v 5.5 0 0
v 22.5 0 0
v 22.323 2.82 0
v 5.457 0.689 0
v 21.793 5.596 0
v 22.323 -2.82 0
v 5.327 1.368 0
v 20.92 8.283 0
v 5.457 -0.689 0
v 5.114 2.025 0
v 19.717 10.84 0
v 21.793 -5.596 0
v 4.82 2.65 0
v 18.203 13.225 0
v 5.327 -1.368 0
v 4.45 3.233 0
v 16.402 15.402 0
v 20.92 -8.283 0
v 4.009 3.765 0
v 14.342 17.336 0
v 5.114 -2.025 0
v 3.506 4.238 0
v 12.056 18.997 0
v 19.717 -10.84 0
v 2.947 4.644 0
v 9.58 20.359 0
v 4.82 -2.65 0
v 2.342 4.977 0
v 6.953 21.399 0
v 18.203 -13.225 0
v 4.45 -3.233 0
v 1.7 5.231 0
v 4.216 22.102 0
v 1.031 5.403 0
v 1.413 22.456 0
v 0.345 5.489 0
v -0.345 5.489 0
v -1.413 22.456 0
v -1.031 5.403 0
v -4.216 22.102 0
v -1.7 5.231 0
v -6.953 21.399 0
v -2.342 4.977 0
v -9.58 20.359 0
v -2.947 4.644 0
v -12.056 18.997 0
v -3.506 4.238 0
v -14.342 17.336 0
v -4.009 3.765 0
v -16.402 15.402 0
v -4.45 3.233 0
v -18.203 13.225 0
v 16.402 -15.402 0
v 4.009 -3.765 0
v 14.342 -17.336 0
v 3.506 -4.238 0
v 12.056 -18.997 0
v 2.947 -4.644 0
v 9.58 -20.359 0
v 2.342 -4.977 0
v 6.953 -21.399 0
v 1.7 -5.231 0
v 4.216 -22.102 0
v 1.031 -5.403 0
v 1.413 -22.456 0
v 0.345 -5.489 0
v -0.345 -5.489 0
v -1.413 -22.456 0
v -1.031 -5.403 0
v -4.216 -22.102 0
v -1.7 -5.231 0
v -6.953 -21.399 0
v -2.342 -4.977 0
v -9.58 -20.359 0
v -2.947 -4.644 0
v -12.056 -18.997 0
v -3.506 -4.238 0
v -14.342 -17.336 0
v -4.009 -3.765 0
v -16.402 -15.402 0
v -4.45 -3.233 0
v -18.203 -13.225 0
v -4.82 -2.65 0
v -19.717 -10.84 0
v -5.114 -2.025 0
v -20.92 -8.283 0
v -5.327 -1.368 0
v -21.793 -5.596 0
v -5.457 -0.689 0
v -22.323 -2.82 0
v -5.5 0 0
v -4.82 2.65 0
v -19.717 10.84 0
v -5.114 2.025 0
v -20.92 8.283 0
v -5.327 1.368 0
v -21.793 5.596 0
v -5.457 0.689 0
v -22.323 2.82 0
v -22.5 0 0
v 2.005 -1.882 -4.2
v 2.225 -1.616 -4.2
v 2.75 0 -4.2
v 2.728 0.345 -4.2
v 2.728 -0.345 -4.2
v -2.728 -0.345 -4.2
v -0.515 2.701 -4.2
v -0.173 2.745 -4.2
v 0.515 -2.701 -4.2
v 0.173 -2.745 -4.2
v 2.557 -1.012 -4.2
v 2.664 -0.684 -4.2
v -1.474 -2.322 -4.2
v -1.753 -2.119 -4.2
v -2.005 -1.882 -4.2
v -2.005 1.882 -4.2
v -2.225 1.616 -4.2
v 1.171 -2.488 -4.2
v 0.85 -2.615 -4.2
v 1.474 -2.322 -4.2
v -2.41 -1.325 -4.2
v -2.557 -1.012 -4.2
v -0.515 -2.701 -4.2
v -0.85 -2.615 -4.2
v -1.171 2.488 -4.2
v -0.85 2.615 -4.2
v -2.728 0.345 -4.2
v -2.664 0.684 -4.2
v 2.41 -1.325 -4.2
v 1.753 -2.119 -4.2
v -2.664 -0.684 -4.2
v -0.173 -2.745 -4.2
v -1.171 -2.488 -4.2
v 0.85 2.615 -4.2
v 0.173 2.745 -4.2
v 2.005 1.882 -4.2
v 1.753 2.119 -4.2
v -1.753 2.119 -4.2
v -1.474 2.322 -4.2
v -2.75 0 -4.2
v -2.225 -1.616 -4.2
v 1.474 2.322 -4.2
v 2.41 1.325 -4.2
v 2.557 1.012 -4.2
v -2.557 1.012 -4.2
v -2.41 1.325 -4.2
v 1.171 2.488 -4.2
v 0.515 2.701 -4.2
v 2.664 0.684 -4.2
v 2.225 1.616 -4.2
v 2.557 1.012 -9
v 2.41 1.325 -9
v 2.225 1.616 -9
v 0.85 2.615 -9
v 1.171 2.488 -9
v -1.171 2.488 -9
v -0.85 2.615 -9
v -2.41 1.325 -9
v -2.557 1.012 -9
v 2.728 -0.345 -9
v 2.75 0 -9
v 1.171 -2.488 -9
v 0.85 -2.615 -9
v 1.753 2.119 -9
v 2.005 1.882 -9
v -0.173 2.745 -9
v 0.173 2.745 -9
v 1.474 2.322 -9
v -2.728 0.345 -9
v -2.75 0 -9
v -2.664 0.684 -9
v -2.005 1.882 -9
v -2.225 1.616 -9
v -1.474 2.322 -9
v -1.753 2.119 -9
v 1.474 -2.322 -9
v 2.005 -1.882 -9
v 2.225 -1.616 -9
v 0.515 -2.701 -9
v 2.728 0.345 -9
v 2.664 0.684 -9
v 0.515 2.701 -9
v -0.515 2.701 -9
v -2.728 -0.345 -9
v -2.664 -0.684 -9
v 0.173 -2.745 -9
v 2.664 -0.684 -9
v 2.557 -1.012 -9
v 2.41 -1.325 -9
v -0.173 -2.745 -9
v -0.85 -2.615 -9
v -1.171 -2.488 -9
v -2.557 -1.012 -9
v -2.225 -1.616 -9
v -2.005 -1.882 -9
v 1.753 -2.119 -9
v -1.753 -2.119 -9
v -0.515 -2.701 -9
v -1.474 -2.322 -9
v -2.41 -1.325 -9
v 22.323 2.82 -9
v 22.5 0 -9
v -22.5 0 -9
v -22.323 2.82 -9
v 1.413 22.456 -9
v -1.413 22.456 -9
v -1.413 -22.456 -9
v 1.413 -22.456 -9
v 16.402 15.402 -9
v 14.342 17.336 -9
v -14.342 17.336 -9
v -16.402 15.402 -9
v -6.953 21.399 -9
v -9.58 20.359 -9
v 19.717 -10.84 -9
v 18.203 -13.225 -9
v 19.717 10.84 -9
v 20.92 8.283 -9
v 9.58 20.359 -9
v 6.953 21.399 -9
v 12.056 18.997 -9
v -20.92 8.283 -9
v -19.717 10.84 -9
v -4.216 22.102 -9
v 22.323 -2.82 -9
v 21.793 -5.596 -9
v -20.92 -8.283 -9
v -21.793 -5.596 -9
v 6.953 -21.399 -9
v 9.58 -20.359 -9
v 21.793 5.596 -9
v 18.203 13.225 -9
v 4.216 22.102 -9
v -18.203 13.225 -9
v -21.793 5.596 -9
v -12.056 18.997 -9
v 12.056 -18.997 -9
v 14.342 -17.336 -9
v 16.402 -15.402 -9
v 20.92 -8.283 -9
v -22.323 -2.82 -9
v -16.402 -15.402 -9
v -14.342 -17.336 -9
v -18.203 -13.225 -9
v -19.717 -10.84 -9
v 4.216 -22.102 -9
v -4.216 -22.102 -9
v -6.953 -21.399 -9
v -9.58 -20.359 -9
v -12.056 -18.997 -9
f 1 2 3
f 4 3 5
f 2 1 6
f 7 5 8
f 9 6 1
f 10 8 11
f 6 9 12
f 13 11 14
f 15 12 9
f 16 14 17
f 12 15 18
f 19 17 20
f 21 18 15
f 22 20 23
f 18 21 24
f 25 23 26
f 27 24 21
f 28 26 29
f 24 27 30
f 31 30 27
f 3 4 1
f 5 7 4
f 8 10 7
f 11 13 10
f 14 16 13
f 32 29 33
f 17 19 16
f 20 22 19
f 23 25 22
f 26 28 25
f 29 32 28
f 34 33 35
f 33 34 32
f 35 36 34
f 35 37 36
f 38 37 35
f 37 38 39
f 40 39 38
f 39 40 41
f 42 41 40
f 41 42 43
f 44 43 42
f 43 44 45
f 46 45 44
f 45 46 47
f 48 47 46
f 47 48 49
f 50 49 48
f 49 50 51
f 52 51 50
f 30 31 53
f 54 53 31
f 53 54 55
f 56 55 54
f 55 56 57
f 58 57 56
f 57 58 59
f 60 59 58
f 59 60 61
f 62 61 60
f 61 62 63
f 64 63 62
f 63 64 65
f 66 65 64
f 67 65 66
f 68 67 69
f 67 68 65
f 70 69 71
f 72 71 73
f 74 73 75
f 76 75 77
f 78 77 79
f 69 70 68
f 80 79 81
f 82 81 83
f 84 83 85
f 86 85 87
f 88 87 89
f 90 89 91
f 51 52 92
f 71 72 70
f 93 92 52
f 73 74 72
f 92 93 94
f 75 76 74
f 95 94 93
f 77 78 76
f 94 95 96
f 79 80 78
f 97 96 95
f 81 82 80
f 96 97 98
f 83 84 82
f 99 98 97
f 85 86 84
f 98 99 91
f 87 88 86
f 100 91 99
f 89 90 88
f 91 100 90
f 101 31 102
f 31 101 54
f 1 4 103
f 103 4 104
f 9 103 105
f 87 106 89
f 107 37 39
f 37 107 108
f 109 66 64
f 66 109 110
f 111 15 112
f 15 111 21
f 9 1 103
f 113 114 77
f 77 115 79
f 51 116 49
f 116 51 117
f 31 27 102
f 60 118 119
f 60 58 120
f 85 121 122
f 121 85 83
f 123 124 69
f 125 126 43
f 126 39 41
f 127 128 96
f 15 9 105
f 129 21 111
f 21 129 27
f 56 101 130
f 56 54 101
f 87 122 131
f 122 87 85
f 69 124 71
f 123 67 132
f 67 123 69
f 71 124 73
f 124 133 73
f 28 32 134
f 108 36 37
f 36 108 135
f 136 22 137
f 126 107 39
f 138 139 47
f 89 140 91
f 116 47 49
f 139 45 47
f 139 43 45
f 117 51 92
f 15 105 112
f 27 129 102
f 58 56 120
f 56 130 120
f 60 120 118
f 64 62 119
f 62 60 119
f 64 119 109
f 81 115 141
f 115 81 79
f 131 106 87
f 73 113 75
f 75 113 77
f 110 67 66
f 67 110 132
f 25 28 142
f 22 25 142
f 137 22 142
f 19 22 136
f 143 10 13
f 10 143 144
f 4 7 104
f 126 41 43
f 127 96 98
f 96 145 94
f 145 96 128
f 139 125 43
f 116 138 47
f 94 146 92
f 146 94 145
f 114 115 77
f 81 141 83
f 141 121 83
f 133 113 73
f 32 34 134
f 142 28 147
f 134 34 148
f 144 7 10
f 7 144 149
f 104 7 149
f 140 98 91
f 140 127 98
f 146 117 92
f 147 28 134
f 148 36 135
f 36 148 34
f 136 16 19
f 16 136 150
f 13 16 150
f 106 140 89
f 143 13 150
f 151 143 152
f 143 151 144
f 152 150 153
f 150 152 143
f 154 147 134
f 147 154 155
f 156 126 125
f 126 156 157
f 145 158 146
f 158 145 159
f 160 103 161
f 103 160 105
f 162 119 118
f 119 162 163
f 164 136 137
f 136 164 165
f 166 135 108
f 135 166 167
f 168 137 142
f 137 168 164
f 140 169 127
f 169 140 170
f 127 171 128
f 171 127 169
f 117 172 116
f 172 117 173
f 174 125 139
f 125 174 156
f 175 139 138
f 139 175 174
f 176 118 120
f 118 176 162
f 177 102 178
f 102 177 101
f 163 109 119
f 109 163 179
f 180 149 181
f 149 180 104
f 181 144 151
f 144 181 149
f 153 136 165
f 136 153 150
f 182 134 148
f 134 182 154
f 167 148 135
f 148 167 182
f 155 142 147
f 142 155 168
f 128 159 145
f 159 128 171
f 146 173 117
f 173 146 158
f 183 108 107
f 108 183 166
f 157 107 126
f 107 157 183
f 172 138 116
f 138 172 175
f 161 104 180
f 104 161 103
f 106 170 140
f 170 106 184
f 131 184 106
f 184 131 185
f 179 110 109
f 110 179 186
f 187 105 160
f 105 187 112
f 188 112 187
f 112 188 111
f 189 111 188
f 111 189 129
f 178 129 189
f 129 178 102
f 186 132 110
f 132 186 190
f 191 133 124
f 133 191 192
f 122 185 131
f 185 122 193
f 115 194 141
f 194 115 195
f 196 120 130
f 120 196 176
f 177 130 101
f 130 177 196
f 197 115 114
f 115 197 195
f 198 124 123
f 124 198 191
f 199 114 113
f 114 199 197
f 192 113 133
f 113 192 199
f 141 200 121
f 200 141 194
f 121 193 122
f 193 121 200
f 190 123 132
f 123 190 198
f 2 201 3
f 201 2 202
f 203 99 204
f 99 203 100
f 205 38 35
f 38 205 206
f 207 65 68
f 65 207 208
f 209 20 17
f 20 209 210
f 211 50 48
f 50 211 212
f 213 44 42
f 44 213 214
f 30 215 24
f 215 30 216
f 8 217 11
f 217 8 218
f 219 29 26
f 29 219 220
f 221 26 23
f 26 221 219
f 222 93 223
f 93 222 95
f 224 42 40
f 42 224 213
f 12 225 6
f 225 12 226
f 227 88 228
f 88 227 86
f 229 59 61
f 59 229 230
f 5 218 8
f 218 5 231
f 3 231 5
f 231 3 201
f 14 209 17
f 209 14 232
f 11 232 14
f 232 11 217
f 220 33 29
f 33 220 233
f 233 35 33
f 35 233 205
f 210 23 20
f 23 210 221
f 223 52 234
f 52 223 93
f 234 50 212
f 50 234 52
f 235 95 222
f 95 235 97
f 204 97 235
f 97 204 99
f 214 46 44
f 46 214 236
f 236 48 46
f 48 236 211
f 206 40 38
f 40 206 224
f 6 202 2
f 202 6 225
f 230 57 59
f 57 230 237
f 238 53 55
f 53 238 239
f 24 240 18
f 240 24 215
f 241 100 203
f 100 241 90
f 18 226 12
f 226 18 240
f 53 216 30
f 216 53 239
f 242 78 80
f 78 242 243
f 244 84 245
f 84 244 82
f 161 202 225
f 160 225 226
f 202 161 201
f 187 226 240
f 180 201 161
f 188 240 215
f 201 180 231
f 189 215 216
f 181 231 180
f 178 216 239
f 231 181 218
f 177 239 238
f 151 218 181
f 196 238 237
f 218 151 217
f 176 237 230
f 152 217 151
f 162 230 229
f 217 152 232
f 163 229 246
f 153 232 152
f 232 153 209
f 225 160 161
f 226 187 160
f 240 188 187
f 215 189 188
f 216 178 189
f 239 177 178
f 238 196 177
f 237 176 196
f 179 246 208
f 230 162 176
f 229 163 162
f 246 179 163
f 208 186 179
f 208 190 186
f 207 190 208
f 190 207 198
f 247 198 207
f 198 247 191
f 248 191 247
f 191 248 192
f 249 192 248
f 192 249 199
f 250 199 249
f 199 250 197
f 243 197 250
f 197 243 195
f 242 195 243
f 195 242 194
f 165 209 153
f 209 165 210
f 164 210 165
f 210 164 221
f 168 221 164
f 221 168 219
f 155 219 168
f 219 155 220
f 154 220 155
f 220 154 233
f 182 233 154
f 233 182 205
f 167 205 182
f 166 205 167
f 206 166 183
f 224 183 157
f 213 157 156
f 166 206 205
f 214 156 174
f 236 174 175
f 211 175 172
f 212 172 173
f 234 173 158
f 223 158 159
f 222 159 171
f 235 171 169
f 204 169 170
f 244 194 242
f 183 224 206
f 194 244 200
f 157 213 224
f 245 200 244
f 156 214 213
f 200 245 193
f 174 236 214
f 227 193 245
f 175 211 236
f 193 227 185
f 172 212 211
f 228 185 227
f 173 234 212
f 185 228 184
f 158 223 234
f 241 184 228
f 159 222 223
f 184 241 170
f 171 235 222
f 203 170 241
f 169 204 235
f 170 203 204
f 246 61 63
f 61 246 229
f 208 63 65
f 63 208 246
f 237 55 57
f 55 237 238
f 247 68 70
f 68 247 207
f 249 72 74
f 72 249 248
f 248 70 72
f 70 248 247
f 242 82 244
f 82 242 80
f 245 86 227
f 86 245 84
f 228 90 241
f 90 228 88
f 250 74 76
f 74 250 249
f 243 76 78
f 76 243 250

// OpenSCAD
$fn = 50;


difference() {
	union() {
		translate(v = [0, 0, -9.0000000000]) {
			cylinder(h = 9, r = 22.5000000000);
		}
	}
	union() {
		translate(v = [0, 0, 0]) {
			rotate(a = [0, 0, 0]) {
				difference() {
					union() {
						translate(v = [0, 0, -12.0000000000]) {
							cylinder(h = 12, r = 2.2500000000);
						}
						translate(v = [0, 0, -4.2000000000]) {
							cylinder(h = 4.2000000000, r1 = 2.7500000000, r2 = 5.5000000000);
						}
						translate(v = [0, 0, -12.0000000000]) {
							cylinder(h = 12, r = 2.7500000000);
						}
						translate(v = [0, 0, -12.0000000000]) {
							cylinder(h = 12, r = 2.2500000000);
						}
					}
					union();
				}
			}
		}
	}
}
